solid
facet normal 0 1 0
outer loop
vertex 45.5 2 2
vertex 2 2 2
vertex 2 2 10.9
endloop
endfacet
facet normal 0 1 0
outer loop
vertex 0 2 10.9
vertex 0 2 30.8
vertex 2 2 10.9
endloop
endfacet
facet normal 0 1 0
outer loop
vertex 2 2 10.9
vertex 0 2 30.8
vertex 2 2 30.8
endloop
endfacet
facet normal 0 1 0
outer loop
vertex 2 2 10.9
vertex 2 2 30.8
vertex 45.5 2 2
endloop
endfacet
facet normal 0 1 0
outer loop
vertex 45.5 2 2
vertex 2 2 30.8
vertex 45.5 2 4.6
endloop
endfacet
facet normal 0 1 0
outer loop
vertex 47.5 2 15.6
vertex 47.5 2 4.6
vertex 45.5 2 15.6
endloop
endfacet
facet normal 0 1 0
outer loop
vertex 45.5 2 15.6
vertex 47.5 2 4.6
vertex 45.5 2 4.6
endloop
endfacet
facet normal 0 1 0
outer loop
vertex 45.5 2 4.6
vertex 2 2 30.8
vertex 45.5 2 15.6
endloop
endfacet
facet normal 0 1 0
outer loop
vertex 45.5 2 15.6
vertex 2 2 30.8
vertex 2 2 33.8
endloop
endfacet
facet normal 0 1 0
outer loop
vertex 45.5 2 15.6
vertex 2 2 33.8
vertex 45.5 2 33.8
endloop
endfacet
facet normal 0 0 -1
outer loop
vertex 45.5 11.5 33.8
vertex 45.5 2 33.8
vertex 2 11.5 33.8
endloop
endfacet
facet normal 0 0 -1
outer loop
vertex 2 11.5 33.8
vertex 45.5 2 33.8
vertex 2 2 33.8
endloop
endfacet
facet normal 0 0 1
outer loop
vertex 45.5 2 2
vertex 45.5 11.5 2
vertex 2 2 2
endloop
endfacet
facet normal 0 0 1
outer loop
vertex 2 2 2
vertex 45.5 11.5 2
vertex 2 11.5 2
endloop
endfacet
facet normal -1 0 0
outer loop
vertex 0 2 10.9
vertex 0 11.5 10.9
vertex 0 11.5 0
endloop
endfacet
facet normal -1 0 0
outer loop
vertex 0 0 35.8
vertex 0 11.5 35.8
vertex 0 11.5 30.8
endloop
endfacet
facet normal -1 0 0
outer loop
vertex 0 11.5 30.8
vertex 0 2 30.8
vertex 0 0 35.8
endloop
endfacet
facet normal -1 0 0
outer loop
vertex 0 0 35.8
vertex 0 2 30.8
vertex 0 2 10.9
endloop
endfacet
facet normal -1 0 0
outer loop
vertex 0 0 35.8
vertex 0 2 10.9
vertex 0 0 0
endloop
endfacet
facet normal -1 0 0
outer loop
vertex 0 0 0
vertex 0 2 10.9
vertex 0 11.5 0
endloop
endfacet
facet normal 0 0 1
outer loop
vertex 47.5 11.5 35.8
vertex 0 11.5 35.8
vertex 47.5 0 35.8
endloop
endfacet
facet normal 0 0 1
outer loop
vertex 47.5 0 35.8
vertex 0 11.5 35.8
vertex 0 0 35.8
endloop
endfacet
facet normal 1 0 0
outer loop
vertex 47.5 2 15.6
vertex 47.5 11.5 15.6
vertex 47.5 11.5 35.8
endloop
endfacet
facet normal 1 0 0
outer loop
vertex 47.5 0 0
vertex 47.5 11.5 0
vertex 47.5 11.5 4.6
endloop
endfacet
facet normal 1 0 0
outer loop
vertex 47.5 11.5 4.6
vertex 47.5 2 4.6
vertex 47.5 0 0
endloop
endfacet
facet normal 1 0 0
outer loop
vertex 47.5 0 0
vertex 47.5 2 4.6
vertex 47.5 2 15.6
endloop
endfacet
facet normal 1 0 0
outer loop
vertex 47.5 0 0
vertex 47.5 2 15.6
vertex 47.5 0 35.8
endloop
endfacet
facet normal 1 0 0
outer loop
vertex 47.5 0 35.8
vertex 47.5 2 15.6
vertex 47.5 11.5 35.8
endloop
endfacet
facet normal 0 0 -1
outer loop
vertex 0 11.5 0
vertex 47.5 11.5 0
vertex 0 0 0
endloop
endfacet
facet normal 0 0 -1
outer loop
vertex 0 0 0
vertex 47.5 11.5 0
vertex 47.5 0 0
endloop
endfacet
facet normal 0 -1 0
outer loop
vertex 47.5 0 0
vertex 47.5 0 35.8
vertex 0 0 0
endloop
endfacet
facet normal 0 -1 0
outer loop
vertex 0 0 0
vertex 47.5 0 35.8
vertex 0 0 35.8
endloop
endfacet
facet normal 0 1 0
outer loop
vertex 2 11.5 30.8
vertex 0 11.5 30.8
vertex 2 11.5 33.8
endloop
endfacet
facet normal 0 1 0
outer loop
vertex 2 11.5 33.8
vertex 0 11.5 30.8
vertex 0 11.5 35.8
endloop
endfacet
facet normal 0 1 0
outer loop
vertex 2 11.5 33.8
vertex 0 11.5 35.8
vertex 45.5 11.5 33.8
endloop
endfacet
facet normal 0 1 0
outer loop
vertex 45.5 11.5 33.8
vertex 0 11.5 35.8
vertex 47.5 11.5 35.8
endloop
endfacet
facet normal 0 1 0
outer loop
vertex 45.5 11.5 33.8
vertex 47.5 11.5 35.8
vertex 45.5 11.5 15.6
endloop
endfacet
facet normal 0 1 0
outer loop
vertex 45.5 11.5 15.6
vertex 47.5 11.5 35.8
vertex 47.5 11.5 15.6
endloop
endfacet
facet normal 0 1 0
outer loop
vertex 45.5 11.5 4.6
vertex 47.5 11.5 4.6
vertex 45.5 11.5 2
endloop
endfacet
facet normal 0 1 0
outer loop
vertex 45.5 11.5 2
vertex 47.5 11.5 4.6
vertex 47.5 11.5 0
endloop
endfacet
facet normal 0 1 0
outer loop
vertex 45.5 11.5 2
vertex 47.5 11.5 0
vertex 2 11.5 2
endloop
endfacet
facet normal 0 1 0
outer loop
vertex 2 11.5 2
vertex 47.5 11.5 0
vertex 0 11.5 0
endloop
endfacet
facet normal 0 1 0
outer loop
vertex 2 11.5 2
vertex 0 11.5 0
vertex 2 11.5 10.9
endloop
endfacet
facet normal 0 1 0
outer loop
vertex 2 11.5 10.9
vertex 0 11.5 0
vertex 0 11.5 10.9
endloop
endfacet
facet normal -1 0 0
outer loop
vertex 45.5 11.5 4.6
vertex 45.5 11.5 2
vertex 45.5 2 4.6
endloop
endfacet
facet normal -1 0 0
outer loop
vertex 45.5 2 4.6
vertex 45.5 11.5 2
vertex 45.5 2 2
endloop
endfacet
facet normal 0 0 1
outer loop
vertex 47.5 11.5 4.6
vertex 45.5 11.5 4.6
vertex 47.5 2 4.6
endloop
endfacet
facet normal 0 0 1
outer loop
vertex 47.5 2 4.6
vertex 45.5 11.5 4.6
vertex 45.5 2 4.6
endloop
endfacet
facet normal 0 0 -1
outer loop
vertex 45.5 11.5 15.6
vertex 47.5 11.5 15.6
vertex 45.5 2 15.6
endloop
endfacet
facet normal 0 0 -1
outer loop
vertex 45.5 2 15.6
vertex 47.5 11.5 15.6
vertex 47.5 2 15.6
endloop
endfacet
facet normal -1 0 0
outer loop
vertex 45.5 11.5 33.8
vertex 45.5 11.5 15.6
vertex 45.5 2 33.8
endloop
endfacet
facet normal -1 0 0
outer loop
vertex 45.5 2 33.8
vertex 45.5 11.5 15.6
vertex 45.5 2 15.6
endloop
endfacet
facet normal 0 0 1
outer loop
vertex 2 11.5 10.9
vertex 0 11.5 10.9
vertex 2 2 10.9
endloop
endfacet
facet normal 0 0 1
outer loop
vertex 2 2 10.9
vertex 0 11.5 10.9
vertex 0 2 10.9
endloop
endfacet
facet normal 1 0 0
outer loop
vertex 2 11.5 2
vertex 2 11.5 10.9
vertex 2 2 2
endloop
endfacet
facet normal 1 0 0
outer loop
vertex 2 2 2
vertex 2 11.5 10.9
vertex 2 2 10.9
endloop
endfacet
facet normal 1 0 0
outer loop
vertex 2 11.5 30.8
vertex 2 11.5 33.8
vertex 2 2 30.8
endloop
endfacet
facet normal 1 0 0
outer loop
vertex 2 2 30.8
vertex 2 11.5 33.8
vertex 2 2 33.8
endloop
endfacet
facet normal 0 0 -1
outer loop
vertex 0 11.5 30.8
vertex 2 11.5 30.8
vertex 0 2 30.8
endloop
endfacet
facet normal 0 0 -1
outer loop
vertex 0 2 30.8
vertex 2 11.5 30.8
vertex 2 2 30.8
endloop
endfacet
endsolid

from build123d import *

# Parameters (mm, degrees)
ESQUISSE1_W        = 47.5
ESQUISSE1_H        = 35.8
BOSS_EXTRU_2_DEPTH = 2
ESQUISSE2_W        = 47.5
ESQUISSE2_H        = 2
BOSS_EXTRU_3_DEPTH = 9.5
ESQUISSE3_W        = 47.5
ESQUISSE3_H        = 2
BOSS_EXTRU_4_DEPTH = 9.5
ESQUISSE4_W        = 2
ESQUISSE4_H        = 2.6
BOSS_EXTRU_5_DEPTH = 9.5
ESQUISSE5_W        = 2
ESQUISSE5_H        = 18.2
BOSS_EXTRU_6_DEPTH = 9.5
ESQUISSE6_W        = 2
ESQUISSE6_H        = 8.9
BOSS_EXTRU_7_DEPTH = 9.5
ESQUISSE8_W        = 2
ESQUISSE8_H        = 3
BOSS_EXTRU_8_DEPTH = 9.5


with BuildPart() as part:
    # Esquisse1 → Boss.-Extru.2 (new body)
    with BuildSketch(Plane(origin=(0, 0, 0), x_dir=(1, 0, 0), z_dir=(0, 1, 0))):
        with Locations((23.75, -17.9)):
            Rectangle(ESQUISSE1_W, ESQUISSE1_H)
    extrude(amount=BOSS_EXTRU_2_DEPTH)

    # Esquisse2 → Boss.-Extru.3 (add)
    with BuildSketch(Plane(origin=(0, 2, 0), x_dir=(1, 0, 0), z_dir=(0, 1, 0))):
        with Locations((23.75, -34.8)):
            Rectangle(ESQUISSE2_W, ESQUISSE2_H)
    extrude(amount=BOSS_EXTRU_3_DEPTH)

    # Esquisse3 → Boss.-Extru.4 (add)
    with BuildSketch(Plane(origin=(0, 2, 0), x_dir=(1, 0, 0), z_dir=(0, 1, 0))):
        with Locations((23.75, -1)):
            Rectangle(ESQUISSE3_W, ESQUISSE3_H)
    extrude(amount=BOSS_EXTRU_4_DEPTH)

    # Esquisse4 → Boss.-Extru.5 (add)
    with BuildSketch(Plane(origin=(0, 2, 0), x_dir=(1, 0, 0), z_dir=(0, 1, 0))):
        with Locations((46.5, -3.3)):
            Rectangle(ESQUISSE4_W, ESQUISSE4_H)
    extrude(amount=BOSS_EXTRU_5_DEPTH)

    # Esquisse5 → Boss.-Extru.6 (add)
    with BuildSketch(Plane(origin=(0, 2, 0), x_dir=(1, 0, 0), z_dir=(0, 1, 0))):
        with Locations((46.5, -24.7)):
            Rectangle(ESQUISSE5_W, ESQUISSE5_H)
    extrude(amount=BOSS_EXTRU_6_DEPTH)

    # Esquisse6 → Boss.-Extru.7 (add)
    with BuildSketch(Plane(origin=(0, 2, 0), x_dir=(1, 0, 0), z_dir=(0, 1, 0))):
        with Locations((1, -6.45)):
            Rectangle(ESQUISSE6_W, ESQUISSE6_H)
    extrude(amount=BOSS_EXTRU_7_DEPTH)

    # Esquisse8 → Boss.-Extru.8 (add)
    with BuildSketch(Plane(origin=(0, 2, 0), x_dir=(1, 0, 0), z_dir=(0, 1, 0))):
        with Locations((1, -32.3)):
            Rectangle(ESQUISSE8_W, ESQUISSE8_H)
    extrude(amount=BOSS_EXTRU_8_DEPTH)


solid = part.part
